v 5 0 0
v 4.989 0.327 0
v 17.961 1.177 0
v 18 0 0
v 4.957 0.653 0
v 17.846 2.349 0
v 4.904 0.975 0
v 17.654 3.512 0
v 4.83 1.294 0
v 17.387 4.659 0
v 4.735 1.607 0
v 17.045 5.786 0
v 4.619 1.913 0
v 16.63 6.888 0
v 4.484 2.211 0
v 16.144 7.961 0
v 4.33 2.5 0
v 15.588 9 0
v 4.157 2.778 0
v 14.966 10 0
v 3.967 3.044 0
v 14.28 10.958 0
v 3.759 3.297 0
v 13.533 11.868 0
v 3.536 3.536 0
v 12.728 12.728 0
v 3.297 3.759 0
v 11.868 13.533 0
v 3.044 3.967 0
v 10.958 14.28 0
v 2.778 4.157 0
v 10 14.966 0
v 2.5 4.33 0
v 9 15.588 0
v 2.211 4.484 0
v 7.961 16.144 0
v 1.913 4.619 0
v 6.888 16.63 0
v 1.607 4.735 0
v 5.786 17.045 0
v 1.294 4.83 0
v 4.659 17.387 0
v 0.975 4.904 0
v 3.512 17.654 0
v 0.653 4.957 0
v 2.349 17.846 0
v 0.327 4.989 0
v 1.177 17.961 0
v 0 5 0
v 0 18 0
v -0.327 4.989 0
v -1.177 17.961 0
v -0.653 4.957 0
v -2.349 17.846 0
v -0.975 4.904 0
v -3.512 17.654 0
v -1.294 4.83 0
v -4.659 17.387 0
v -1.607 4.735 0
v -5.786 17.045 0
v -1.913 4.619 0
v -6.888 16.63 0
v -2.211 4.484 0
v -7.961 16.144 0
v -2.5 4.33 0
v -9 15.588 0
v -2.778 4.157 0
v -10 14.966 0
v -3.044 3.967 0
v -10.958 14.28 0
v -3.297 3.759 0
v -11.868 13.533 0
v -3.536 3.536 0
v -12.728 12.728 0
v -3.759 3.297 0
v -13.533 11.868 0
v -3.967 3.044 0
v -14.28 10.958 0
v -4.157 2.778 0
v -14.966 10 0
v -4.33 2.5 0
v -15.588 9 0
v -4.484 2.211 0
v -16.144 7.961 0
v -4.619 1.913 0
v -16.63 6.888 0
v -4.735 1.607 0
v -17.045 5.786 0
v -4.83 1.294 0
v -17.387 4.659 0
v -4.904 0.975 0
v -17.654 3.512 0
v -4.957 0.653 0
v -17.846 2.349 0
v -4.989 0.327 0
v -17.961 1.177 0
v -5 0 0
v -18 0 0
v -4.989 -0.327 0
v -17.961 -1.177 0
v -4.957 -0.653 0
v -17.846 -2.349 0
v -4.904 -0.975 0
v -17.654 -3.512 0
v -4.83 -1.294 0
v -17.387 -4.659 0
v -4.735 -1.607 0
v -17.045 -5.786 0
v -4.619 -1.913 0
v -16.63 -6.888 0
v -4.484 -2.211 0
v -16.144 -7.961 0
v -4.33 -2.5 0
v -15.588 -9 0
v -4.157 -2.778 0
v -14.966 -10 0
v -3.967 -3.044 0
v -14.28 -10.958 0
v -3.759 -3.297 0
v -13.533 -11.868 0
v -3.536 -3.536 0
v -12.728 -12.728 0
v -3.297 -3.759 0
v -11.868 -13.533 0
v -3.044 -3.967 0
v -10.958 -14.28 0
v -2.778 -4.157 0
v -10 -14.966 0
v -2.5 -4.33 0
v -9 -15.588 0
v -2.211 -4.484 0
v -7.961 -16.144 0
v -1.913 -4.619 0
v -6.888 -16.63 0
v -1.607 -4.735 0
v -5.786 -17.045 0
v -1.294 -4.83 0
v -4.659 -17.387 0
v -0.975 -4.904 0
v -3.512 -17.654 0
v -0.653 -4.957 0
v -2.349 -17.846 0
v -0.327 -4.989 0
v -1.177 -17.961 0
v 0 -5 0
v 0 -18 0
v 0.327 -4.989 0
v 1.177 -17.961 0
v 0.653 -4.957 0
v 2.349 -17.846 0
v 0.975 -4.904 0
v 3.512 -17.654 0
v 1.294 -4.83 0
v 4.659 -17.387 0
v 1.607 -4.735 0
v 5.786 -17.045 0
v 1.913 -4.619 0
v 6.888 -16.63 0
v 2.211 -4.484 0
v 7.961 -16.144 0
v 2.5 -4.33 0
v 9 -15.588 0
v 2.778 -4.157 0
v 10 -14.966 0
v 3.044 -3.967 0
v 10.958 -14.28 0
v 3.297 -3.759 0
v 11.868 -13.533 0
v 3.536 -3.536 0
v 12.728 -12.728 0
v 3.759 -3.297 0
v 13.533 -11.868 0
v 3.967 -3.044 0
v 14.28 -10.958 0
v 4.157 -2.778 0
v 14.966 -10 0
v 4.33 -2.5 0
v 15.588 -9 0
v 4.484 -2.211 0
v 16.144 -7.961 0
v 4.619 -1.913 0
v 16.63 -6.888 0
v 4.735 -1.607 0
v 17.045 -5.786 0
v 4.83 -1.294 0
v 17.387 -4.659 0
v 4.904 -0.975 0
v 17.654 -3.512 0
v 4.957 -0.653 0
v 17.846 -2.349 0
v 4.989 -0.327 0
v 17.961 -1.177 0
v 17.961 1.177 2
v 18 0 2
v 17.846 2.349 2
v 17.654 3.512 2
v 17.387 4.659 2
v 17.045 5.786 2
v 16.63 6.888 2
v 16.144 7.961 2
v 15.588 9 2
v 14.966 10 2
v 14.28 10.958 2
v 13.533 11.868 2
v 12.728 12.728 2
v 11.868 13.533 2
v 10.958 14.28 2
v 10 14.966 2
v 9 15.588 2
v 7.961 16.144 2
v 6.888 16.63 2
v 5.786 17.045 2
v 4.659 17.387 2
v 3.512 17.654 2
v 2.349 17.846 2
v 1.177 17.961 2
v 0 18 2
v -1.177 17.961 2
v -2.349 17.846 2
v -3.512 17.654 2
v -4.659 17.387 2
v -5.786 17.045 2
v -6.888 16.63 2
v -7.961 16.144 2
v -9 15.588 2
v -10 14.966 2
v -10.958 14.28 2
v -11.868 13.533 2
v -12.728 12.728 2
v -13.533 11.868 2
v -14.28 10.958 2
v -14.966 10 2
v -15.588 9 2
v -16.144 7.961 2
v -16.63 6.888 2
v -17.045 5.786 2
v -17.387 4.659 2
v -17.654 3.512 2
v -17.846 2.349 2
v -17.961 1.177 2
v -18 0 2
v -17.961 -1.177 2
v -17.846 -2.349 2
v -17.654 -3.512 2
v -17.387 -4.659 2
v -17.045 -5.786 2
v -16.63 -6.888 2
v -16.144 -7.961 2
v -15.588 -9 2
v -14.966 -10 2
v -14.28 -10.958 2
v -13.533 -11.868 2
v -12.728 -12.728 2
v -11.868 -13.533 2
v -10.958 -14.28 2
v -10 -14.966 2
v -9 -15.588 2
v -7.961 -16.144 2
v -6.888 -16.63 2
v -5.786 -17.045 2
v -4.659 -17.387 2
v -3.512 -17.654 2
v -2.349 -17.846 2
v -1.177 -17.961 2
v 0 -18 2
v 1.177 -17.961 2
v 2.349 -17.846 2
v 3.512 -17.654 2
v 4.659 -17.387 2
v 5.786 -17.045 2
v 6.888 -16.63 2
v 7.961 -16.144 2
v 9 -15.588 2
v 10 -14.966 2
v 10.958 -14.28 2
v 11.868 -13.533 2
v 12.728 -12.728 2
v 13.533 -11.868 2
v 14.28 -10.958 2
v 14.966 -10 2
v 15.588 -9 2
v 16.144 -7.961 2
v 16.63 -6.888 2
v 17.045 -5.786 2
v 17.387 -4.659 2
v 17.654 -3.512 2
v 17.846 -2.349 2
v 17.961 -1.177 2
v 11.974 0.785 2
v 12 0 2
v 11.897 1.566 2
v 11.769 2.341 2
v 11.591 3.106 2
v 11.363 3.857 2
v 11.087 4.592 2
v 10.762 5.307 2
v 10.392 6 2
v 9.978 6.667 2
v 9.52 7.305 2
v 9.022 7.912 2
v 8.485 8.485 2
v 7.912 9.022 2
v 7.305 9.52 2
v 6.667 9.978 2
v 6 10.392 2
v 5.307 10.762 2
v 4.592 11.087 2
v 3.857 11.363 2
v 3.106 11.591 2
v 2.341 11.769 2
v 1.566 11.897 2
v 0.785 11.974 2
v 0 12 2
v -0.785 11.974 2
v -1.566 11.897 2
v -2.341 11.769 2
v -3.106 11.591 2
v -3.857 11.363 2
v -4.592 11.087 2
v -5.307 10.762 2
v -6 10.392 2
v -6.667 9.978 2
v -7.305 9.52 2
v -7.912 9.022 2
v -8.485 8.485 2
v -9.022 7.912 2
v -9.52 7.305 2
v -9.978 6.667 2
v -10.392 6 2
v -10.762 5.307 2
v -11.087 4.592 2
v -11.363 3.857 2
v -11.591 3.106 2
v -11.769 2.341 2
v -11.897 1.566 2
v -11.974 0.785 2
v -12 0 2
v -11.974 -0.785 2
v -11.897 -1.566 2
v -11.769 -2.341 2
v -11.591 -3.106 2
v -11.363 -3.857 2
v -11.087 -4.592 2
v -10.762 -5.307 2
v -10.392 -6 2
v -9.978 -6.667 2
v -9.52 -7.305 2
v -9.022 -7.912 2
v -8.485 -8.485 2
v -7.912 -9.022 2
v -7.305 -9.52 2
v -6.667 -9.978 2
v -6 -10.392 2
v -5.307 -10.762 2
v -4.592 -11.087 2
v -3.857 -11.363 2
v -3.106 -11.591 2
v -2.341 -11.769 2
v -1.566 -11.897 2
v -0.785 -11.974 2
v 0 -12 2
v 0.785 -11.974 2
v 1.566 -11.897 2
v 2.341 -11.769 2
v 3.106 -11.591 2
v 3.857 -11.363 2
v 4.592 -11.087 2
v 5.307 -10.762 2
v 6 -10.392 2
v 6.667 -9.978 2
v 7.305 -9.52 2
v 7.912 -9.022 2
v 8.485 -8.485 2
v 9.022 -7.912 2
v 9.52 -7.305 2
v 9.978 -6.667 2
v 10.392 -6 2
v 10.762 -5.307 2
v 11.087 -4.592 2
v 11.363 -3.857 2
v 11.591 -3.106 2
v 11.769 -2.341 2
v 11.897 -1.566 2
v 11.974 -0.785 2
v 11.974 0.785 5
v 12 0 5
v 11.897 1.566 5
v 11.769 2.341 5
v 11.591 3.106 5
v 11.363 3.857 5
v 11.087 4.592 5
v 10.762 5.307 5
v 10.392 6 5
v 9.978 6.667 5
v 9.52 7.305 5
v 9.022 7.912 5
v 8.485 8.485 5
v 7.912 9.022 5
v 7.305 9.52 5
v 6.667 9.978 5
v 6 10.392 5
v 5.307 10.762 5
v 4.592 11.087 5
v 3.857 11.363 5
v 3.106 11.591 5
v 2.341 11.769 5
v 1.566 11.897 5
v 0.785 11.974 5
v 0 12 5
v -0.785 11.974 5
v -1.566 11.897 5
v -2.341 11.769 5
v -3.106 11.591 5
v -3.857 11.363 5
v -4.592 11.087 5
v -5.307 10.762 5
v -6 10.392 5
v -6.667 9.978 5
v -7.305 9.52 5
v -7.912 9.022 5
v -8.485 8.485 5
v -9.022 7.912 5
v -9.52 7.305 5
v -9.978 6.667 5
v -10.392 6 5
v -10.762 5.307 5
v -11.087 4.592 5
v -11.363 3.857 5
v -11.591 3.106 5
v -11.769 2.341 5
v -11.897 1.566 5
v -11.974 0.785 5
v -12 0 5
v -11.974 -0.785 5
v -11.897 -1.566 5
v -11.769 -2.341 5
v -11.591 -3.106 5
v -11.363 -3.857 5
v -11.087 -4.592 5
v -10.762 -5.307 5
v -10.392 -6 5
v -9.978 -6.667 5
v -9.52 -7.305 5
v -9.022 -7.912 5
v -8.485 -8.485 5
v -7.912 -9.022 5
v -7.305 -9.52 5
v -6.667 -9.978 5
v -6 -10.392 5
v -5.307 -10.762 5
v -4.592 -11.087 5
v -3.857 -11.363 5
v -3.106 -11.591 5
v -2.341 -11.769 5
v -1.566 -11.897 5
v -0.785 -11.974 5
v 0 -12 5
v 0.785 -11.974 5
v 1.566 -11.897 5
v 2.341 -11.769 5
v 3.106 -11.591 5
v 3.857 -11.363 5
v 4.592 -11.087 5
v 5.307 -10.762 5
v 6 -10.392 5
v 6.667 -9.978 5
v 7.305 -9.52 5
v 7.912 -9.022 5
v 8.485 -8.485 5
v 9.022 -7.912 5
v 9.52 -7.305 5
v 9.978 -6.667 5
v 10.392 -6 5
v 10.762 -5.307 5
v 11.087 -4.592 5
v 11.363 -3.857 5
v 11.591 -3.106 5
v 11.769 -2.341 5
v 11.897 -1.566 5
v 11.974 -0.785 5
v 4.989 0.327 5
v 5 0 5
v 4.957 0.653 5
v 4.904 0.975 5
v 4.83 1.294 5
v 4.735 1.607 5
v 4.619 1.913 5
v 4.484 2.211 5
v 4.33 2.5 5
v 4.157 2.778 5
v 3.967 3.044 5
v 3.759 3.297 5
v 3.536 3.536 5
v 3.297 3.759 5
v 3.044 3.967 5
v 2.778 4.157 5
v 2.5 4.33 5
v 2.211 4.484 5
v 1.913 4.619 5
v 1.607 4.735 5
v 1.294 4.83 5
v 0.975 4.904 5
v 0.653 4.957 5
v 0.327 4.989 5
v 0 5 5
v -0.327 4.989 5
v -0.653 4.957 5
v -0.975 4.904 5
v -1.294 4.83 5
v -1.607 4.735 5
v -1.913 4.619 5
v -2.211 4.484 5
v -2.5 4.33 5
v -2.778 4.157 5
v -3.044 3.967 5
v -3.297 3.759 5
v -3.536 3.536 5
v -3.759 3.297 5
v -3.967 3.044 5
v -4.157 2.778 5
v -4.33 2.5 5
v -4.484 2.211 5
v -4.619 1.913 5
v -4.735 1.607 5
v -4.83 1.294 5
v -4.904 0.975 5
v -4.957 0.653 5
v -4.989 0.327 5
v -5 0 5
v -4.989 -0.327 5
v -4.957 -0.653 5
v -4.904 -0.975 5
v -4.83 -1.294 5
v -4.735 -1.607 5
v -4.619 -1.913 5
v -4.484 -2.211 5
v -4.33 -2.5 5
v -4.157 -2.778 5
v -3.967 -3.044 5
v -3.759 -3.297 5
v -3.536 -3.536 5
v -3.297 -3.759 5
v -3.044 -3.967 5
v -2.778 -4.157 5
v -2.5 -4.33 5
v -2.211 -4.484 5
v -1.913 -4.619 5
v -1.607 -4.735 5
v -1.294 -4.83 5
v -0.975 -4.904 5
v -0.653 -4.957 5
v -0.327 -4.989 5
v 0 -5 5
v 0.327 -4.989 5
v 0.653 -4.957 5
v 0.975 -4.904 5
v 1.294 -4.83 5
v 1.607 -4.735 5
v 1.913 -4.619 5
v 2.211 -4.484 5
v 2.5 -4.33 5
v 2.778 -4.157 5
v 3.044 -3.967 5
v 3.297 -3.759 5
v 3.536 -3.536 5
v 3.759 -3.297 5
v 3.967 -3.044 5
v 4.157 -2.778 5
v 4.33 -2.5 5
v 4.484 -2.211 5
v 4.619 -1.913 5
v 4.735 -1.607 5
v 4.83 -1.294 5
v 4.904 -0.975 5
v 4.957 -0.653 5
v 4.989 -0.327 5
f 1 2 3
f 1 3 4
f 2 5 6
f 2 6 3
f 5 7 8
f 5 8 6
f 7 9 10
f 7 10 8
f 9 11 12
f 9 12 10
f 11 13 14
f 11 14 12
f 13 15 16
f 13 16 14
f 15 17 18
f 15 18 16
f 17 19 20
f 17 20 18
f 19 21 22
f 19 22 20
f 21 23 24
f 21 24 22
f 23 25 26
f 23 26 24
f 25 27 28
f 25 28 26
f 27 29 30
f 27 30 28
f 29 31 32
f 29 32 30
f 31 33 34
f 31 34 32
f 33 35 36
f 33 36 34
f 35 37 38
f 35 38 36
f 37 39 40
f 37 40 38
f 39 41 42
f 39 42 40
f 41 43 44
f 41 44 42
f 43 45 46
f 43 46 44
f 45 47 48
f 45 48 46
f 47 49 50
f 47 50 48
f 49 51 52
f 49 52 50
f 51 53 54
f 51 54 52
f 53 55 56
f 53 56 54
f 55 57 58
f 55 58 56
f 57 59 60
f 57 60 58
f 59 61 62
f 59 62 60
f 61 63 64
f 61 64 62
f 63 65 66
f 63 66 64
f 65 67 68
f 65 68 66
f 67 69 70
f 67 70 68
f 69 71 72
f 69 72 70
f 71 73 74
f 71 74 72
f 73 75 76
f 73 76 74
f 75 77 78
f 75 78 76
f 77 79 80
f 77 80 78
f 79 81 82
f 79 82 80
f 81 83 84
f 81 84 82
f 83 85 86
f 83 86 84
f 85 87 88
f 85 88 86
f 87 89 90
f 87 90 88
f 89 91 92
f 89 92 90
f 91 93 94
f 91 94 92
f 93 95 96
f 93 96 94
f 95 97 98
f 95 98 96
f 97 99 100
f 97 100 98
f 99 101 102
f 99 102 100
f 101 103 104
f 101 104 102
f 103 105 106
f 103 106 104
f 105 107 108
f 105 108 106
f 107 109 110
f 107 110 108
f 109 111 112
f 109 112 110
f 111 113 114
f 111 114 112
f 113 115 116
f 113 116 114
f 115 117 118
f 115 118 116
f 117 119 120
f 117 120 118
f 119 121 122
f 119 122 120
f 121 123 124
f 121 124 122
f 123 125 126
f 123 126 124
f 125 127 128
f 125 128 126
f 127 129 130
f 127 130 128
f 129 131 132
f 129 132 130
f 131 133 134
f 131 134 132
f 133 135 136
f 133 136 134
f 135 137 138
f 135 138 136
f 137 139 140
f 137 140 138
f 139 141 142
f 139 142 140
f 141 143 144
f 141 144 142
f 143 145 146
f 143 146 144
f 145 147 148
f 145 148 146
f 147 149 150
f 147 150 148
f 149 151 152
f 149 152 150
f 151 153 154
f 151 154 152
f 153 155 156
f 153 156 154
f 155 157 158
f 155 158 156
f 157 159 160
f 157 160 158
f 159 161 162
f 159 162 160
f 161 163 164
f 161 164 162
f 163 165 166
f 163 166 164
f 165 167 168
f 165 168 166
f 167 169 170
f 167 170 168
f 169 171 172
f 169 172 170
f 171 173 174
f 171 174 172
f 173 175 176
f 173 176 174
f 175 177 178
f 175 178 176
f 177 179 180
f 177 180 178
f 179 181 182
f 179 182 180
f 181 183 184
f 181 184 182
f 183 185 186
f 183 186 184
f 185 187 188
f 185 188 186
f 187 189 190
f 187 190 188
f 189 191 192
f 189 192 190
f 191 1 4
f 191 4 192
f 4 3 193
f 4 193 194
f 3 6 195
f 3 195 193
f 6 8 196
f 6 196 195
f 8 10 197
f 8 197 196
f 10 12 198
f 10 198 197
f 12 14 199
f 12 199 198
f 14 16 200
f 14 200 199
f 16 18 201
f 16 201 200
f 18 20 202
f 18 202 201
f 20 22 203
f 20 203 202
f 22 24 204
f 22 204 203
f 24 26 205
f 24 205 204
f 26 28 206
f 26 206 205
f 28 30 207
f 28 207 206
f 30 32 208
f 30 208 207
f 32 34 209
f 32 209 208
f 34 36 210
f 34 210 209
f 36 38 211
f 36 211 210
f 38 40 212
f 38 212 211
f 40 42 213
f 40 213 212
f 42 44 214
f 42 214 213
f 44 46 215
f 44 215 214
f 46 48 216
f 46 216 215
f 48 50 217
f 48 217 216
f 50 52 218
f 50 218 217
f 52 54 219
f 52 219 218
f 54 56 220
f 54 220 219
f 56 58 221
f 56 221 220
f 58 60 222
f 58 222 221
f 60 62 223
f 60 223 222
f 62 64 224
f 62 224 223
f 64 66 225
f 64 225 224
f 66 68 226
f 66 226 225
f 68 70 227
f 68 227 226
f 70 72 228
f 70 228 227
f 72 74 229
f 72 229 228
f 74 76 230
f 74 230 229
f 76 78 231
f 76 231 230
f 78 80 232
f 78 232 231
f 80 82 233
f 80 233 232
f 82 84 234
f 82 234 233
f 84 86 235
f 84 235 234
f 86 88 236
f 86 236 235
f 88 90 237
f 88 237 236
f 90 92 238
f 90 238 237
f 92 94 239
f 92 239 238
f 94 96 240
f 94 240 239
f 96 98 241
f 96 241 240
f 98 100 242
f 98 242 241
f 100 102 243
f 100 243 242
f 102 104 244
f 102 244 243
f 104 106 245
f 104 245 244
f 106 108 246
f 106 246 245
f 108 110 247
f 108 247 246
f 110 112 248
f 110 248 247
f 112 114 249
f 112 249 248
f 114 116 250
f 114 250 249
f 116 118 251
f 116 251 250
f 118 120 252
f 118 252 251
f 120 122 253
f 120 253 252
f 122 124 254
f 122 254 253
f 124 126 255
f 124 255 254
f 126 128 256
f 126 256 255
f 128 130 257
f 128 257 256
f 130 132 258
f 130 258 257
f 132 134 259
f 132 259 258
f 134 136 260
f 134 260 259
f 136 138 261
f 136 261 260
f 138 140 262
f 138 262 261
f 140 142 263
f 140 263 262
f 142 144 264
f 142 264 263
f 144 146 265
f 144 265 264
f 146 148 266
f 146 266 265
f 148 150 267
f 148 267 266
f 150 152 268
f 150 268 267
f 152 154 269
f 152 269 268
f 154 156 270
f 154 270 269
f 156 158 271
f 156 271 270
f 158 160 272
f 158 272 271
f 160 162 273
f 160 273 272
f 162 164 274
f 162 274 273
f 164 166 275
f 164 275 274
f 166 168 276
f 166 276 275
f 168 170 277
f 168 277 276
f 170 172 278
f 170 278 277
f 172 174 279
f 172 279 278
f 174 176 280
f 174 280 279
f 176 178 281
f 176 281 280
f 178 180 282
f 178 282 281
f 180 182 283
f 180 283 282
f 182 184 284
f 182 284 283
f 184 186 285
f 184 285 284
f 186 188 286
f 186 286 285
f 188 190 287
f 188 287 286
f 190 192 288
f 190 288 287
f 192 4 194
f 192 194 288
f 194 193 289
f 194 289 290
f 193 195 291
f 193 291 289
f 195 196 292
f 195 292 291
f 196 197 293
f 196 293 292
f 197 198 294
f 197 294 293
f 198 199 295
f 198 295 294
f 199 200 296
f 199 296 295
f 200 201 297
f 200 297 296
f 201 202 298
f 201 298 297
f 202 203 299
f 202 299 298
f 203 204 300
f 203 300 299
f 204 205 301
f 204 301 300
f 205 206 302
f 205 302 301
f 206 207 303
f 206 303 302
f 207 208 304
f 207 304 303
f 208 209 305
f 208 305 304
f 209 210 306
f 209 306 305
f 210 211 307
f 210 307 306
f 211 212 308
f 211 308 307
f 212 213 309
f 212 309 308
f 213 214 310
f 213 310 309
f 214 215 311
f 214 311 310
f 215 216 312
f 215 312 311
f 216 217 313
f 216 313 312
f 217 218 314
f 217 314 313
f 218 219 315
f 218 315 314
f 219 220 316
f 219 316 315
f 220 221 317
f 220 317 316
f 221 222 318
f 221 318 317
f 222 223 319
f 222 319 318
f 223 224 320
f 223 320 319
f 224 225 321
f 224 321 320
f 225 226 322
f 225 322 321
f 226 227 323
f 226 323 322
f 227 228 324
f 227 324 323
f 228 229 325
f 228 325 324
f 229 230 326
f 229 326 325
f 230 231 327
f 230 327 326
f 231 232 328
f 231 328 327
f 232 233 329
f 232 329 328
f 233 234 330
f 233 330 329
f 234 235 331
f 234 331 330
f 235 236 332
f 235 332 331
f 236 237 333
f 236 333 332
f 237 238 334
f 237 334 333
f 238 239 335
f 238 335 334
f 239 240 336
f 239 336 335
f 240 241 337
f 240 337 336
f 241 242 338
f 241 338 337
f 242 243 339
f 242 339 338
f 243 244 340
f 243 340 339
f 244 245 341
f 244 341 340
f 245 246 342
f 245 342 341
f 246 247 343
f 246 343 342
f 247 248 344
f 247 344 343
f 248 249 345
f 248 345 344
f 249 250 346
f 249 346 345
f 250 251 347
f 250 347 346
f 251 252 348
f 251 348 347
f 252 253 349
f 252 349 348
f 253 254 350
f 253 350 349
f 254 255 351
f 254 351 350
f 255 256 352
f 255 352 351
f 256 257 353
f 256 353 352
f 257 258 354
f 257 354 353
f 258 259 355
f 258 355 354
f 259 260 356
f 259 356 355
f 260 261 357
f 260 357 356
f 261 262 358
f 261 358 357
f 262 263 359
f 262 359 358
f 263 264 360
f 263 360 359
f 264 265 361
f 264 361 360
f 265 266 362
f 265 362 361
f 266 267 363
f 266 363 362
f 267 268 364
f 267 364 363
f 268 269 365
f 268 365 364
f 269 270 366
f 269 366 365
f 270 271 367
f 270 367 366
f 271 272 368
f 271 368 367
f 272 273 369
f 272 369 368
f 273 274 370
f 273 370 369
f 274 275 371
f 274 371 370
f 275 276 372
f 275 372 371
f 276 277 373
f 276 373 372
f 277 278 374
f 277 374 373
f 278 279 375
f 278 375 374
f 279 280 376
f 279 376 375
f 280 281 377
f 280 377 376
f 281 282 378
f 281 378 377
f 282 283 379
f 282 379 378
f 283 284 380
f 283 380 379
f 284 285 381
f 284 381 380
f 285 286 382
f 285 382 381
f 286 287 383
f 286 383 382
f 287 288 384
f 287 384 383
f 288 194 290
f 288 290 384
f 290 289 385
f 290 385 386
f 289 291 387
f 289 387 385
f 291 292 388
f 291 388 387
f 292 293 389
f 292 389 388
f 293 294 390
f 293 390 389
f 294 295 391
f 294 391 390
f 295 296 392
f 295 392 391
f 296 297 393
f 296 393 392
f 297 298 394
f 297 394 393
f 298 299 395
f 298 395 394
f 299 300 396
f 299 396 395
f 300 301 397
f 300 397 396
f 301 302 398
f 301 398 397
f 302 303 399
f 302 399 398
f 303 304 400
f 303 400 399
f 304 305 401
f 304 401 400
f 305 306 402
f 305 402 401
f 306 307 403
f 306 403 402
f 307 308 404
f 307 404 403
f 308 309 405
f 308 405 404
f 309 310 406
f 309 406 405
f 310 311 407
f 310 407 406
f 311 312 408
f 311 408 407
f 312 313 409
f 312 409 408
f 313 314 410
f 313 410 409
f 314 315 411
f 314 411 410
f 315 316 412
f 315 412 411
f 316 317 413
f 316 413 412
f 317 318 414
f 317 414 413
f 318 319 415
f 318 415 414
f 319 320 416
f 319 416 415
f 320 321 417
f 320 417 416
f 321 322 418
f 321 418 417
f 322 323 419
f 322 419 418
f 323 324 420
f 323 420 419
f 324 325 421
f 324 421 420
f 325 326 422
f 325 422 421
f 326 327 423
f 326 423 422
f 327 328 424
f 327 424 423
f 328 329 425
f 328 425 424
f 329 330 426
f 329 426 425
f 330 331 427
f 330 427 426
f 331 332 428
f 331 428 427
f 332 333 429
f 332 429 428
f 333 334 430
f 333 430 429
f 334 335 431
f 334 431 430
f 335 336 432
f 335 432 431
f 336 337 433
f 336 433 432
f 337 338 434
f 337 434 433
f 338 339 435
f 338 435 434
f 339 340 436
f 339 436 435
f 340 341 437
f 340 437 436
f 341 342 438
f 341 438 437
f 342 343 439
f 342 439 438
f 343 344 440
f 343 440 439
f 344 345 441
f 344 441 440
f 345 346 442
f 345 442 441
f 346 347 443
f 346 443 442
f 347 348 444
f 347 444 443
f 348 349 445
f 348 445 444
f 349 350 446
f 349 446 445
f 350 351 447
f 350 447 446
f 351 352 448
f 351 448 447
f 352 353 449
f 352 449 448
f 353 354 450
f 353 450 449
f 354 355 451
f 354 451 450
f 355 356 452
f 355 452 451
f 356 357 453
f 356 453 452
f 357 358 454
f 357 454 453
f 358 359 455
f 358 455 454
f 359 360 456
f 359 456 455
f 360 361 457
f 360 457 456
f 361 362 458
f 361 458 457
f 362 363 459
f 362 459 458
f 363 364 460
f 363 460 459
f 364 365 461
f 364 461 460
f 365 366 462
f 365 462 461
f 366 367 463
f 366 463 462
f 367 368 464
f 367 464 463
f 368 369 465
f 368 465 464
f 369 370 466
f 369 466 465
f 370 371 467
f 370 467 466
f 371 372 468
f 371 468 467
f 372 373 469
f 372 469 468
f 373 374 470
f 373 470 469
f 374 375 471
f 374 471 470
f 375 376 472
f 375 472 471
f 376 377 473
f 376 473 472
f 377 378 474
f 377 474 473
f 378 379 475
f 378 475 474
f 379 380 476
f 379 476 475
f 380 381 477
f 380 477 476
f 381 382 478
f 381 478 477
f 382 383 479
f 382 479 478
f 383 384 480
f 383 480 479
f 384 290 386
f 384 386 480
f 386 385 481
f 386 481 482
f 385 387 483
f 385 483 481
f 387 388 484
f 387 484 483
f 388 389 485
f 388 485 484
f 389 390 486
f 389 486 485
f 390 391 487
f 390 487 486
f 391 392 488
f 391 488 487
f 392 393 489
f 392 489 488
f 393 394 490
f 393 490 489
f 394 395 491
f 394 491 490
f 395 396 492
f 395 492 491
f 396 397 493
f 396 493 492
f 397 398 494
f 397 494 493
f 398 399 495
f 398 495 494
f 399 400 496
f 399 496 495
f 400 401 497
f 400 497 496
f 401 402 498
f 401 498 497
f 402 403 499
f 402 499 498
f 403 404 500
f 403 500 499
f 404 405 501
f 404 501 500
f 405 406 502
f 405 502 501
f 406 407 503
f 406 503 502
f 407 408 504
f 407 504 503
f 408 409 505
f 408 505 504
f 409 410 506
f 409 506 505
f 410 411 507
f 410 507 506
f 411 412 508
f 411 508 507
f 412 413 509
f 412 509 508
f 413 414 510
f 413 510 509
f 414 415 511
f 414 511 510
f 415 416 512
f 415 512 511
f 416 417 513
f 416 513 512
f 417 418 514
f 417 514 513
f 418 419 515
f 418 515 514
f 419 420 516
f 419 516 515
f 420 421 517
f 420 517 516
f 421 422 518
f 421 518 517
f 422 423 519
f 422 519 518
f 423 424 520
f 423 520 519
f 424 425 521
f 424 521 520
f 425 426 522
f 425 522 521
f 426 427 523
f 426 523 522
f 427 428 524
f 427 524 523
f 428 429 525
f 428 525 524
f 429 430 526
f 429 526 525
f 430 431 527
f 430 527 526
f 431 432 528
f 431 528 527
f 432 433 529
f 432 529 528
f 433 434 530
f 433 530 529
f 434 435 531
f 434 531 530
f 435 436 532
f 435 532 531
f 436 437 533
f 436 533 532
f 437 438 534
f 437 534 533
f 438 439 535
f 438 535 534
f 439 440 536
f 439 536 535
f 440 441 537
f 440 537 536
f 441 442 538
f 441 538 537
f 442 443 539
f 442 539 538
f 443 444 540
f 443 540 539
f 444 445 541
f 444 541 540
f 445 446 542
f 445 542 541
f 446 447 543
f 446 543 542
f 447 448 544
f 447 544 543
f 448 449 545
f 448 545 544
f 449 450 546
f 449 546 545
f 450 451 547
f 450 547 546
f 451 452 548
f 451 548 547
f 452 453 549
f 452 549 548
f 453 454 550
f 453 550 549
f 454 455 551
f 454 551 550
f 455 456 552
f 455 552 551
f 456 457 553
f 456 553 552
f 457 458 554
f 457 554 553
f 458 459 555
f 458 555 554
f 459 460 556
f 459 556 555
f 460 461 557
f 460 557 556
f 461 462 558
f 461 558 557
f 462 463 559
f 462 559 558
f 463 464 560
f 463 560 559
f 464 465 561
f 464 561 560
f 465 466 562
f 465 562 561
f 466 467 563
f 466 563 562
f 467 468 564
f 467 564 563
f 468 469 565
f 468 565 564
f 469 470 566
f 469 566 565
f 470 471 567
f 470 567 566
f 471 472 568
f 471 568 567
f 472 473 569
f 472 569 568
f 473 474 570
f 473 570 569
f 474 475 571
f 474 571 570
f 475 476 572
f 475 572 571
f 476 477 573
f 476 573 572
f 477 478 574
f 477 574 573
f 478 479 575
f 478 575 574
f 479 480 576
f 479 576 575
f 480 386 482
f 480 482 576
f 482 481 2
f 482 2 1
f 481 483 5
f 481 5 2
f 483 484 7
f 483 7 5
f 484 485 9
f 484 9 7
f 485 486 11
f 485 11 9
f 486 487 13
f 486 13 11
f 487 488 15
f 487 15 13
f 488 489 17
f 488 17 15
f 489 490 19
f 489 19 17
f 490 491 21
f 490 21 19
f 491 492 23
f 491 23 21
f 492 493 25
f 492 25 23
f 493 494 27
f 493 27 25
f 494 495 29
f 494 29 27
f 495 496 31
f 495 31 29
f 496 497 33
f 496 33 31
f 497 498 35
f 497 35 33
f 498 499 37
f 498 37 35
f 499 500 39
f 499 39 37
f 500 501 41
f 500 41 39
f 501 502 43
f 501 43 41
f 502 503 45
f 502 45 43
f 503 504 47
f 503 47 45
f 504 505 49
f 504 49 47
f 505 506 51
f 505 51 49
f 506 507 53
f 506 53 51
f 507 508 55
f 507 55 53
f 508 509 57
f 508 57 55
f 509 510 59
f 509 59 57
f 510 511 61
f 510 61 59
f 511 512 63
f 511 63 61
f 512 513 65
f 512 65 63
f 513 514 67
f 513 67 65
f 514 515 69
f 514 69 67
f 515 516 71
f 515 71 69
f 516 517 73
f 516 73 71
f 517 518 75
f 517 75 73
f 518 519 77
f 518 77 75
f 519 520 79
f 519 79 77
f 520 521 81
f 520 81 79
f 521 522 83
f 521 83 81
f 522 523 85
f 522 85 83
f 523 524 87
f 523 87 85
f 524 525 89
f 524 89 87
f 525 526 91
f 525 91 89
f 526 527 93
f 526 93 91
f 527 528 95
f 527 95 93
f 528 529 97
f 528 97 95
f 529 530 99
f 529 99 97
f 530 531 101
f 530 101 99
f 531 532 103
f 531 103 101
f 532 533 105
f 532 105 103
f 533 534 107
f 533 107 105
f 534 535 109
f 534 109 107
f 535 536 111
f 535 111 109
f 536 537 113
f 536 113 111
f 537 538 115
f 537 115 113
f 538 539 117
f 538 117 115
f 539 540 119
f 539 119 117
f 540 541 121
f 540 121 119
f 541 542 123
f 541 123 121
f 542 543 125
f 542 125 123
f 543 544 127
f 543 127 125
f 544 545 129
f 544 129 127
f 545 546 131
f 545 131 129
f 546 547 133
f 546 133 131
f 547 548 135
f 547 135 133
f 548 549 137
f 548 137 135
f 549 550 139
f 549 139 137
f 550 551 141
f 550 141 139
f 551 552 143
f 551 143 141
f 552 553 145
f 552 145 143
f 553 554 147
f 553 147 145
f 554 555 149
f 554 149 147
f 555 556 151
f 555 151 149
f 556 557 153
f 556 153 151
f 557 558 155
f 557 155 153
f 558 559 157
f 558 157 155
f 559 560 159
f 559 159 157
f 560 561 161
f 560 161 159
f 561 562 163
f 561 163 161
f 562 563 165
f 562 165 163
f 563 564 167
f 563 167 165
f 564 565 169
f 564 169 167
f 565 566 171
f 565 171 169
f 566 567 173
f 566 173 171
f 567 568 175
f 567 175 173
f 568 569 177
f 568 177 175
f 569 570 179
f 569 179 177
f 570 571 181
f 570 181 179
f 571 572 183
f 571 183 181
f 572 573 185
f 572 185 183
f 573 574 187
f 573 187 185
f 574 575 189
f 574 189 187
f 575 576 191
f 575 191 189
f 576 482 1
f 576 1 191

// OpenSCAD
// Original MechIntel educational model. CC0-1.0. Units: mm.
// Not a standardized or load-rated component.
$fn=96;
// Section points: [radius, height], mm. Edit to change the profile.
section=[[5, 0], [18, 0], [18, 2], [12, 2], [12, 5], [5, 5]];
rotate_extrude($fn=96) polygon(points=section);
